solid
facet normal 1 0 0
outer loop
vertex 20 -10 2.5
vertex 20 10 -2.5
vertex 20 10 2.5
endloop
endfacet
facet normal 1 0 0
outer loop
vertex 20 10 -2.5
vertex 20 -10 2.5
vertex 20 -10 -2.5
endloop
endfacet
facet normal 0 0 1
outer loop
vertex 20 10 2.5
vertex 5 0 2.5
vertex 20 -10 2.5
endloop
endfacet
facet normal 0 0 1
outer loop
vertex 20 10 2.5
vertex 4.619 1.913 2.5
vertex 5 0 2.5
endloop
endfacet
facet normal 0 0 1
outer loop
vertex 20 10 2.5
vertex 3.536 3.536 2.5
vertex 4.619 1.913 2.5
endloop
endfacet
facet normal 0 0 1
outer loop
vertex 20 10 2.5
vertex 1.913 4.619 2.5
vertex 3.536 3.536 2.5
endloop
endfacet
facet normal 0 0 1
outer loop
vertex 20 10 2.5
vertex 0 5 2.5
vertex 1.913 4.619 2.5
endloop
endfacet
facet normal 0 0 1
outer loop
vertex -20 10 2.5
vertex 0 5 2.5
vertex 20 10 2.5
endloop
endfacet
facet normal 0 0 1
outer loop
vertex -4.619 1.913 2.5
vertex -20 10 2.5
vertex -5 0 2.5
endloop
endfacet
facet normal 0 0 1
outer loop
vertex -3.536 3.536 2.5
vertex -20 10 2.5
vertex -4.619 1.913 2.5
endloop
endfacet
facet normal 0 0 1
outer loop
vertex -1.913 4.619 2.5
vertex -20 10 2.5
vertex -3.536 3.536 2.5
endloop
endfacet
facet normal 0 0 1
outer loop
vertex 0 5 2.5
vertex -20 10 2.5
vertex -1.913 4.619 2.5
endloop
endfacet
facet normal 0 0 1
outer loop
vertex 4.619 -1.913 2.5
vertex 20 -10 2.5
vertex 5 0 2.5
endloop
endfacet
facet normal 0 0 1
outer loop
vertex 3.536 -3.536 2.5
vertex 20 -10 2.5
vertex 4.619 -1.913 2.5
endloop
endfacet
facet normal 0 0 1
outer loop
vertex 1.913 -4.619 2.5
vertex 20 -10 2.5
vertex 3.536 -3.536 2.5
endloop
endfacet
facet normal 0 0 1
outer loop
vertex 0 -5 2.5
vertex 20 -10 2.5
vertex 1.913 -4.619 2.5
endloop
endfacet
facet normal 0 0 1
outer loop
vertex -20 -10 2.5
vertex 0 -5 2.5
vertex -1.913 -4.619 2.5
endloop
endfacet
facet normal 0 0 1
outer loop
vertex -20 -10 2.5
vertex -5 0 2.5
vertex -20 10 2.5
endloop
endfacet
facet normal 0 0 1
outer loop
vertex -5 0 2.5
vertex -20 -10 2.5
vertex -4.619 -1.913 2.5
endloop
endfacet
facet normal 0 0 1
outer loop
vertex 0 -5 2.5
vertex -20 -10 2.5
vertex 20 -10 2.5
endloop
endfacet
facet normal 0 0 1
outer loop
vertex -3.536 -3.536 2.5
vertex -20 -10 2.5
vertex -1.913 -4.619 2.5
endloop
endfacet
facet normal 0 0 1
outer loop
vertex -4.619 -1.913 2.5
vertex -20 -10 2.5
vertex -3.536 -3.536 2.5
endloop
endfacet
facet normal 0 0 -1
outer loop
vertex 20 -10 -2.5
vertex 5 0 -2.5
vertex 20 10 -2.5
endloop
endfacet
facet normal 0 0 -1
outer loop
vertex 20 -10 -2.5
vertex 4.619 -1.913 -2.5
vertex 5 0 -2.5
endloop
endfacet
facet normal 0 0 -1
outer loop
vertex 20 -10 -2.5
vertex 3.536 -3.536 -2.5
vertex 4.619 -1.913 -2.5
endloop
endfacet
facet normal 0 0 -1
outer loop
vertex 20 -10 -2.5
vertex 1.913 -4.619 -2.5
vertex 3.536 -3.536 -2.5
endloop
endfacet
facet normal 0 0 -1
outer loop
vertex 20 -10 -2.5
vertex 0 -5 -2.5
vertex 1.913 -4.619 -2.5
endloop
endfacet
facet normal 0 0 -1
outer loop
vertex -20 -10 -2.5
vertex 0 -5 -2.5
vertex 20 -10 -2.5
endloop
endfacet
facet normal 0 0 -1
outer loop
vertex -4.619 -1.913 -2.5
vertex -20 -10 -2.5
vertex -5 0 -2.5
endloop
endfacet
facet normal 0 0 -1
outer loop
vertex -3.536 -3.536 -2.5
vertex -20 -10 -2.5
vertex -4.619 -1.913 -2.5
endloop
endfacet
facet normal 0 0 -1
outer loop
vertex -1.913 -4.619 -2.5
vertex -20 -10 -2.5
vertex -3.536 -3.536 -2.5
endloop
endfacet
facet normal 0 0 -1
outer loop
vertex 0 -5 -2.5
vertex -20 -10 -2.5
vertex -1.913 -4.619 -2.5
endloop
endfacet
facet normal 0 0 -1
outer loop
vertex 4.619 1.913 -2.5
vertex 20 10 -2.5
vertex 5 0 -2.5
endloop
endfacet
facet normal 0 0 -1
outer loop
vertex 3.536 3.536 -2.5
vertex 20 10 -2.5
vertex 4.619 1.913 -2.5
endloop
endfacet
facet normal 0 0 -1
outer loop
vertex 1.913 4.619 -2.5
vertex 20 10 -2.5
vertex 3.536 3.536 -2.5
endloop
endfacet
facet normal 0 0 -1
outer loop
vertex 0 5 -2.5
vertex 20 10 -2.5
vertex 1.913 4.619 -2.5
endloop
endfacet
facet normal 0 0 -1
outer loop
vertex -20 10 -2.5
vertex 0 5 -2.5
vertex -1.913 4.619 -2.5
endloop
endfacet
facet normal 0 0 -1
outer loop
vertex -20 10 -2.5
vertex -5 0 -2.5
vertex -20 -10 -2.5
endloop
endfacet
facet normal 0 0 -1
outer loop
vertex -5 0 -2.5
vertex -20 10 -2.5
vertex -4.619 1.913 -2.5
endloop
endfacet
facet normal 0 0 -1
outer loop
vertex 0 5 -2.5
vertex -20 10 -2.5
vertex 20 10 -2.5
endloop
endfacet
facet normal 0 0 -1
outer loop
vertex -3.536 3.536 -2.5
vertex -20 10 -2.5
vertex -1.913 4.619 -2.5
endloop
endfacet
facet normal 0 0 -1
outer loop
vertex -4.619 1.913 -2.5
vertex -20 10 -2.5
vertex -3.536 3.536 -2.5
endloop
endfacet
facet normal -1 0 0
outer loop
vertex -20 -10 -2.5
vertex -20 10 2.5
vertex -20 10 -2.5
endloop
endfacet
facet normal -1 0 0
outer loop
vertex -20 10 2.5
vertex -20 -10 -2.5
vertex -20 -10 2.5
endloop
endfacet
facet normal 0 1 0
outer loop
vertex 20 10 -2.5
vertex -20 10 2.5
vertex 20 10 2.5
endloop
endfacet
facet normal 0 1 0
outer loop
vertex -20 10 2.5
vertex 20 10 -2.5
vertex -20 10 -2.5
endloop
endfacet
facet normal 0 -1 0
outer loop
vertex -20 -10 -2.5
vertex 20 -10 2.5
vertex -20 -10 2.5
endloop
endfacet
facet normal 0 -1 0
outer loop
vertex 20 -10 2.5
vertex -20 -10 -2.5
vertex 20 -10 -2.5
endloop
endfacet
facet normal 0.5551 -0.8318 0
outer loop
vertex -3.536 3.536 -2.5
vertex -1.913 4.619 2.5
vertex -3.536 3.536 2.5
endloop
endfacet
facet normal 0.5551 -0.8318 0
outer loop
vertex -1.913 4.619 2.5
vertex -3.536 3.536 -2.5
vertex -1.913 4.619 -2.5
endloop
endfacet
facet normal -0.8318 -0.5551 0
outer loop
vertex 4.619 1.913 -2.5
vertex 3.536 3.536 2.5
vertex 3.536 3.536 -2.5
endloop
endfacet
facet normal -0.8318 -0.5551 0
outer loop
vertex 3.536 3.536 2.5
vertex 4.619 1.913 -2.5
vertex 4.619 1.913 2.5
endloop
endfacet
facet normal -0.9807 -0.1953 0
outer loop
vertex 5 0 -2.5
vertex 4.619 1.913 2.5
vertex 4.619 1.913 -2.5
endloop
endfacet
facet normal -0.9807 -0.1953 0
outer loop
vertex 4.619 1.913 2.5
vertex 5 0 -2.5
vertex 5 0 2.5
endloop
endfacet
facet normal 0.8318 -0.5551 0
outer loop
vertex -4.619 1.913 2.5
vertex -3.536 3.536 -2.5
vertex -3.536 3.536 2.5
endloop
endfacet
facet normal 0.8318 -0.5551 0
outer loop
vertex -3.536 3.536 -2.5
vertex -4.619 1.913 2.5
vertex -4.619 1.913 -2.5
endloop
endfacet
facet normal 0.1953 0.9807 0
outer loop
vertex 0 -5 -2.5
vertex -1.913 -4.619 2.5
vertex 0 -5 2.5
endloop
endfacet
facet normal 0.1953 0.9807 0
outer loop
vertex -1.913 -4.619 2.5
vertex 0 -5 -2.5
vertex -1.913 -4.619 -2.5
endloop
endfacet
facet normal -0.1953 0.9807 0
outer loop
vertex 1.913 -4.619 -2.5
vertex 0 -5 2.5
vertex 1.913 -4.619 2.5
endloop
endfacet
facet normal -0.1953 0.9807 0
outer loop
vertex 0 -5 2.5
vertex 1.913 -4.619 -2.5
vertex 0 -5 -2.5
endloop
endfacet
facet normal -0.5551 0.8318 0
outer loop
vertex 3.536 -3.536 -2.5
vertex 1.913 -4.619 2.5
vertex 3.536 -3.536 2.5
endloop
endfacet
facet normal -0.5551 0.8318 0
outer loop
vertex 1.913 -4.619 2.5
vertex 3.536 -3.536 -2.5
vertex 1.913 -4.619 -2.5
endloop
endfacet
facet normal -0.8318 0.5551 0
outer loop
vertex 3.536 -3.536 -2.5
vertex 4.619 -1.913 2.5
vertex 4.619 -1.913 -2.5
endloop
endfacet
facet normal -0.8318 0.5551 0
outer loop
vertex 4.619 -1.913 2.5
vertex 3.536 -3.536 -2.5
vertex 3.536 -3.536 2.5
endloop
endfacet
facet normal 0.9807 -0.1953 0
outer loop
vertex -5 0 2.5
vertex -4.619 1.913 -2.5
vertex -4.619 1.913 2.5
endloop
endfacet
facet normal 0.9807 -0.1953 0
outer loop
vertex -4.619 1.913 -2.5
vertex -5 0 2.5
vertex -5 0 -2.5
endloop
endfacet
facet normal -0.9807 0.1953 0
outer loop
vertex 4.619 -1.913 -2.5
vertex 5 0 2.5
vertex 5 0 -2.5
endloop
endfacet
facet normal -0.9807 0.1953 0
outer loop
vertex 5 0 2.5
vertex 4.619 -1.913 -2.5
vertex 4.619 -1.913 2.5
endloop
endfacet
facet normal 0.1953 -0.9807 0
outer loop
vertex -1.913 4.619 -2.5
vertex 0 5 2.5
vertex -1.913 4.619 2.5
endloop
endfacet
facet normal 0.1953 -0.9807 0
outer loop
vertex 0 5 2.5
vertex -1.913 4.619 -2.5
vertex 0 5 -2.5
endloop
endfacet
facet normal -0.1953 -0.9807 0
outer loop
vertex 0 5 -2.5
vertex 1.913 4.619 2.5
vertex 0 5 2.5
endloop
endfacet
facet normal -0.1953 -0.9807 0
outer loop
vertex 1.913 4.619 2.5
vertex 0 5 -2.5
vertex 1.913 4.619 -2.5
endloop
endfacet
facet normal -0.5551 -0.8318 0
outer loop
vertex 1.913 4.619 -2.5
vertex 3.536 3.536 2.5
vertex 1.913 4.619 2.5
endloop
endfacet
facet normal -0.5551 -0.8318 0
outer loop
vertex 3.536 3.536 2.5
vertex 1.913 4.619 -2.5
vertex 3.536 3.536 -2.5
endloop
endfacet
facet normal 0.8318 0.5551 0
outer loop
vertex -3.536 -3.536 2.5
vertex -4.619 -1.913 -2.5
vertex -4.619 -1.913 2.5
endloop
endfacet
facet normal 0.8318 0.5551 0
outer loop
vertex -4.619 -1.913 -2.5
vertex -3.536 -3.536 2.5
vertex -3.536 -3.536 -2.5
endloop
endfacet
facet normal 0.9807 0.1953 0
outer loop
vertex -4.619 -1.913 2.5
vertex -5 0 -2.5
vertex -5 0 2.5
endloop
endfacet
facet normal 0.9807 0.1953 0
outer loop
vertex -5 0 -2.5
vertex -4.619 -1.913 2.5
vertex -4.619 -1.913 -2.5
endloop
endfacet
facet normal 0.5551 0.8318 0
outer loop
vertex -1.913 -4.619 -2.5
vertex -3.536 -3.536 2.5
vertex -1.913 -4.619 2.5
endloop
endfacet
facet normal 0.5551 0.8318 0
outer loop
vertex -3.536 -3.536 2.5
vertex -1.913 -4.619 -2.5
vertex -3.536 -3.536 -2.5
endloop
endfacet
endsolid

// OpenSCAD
// Function to create the modified central block with protruding extensions
module central_block_modified() {
    difference() {
        // Main unified rectangular block
        cube([40, 20, 5], center = true);
        
        // Protruding rectangular extensions
        translate([-25, 0, 0]) cube([10, 20, 5], center = true);
        translate([25, 0, 0]) cube([10, 20, 5], center = true);
        
        // Central cylindrical hole passing through the entire block
        cylinder(h = 5, r = 5, center = true);
    }
}

// Generate the 3D model
central_block_modified();
